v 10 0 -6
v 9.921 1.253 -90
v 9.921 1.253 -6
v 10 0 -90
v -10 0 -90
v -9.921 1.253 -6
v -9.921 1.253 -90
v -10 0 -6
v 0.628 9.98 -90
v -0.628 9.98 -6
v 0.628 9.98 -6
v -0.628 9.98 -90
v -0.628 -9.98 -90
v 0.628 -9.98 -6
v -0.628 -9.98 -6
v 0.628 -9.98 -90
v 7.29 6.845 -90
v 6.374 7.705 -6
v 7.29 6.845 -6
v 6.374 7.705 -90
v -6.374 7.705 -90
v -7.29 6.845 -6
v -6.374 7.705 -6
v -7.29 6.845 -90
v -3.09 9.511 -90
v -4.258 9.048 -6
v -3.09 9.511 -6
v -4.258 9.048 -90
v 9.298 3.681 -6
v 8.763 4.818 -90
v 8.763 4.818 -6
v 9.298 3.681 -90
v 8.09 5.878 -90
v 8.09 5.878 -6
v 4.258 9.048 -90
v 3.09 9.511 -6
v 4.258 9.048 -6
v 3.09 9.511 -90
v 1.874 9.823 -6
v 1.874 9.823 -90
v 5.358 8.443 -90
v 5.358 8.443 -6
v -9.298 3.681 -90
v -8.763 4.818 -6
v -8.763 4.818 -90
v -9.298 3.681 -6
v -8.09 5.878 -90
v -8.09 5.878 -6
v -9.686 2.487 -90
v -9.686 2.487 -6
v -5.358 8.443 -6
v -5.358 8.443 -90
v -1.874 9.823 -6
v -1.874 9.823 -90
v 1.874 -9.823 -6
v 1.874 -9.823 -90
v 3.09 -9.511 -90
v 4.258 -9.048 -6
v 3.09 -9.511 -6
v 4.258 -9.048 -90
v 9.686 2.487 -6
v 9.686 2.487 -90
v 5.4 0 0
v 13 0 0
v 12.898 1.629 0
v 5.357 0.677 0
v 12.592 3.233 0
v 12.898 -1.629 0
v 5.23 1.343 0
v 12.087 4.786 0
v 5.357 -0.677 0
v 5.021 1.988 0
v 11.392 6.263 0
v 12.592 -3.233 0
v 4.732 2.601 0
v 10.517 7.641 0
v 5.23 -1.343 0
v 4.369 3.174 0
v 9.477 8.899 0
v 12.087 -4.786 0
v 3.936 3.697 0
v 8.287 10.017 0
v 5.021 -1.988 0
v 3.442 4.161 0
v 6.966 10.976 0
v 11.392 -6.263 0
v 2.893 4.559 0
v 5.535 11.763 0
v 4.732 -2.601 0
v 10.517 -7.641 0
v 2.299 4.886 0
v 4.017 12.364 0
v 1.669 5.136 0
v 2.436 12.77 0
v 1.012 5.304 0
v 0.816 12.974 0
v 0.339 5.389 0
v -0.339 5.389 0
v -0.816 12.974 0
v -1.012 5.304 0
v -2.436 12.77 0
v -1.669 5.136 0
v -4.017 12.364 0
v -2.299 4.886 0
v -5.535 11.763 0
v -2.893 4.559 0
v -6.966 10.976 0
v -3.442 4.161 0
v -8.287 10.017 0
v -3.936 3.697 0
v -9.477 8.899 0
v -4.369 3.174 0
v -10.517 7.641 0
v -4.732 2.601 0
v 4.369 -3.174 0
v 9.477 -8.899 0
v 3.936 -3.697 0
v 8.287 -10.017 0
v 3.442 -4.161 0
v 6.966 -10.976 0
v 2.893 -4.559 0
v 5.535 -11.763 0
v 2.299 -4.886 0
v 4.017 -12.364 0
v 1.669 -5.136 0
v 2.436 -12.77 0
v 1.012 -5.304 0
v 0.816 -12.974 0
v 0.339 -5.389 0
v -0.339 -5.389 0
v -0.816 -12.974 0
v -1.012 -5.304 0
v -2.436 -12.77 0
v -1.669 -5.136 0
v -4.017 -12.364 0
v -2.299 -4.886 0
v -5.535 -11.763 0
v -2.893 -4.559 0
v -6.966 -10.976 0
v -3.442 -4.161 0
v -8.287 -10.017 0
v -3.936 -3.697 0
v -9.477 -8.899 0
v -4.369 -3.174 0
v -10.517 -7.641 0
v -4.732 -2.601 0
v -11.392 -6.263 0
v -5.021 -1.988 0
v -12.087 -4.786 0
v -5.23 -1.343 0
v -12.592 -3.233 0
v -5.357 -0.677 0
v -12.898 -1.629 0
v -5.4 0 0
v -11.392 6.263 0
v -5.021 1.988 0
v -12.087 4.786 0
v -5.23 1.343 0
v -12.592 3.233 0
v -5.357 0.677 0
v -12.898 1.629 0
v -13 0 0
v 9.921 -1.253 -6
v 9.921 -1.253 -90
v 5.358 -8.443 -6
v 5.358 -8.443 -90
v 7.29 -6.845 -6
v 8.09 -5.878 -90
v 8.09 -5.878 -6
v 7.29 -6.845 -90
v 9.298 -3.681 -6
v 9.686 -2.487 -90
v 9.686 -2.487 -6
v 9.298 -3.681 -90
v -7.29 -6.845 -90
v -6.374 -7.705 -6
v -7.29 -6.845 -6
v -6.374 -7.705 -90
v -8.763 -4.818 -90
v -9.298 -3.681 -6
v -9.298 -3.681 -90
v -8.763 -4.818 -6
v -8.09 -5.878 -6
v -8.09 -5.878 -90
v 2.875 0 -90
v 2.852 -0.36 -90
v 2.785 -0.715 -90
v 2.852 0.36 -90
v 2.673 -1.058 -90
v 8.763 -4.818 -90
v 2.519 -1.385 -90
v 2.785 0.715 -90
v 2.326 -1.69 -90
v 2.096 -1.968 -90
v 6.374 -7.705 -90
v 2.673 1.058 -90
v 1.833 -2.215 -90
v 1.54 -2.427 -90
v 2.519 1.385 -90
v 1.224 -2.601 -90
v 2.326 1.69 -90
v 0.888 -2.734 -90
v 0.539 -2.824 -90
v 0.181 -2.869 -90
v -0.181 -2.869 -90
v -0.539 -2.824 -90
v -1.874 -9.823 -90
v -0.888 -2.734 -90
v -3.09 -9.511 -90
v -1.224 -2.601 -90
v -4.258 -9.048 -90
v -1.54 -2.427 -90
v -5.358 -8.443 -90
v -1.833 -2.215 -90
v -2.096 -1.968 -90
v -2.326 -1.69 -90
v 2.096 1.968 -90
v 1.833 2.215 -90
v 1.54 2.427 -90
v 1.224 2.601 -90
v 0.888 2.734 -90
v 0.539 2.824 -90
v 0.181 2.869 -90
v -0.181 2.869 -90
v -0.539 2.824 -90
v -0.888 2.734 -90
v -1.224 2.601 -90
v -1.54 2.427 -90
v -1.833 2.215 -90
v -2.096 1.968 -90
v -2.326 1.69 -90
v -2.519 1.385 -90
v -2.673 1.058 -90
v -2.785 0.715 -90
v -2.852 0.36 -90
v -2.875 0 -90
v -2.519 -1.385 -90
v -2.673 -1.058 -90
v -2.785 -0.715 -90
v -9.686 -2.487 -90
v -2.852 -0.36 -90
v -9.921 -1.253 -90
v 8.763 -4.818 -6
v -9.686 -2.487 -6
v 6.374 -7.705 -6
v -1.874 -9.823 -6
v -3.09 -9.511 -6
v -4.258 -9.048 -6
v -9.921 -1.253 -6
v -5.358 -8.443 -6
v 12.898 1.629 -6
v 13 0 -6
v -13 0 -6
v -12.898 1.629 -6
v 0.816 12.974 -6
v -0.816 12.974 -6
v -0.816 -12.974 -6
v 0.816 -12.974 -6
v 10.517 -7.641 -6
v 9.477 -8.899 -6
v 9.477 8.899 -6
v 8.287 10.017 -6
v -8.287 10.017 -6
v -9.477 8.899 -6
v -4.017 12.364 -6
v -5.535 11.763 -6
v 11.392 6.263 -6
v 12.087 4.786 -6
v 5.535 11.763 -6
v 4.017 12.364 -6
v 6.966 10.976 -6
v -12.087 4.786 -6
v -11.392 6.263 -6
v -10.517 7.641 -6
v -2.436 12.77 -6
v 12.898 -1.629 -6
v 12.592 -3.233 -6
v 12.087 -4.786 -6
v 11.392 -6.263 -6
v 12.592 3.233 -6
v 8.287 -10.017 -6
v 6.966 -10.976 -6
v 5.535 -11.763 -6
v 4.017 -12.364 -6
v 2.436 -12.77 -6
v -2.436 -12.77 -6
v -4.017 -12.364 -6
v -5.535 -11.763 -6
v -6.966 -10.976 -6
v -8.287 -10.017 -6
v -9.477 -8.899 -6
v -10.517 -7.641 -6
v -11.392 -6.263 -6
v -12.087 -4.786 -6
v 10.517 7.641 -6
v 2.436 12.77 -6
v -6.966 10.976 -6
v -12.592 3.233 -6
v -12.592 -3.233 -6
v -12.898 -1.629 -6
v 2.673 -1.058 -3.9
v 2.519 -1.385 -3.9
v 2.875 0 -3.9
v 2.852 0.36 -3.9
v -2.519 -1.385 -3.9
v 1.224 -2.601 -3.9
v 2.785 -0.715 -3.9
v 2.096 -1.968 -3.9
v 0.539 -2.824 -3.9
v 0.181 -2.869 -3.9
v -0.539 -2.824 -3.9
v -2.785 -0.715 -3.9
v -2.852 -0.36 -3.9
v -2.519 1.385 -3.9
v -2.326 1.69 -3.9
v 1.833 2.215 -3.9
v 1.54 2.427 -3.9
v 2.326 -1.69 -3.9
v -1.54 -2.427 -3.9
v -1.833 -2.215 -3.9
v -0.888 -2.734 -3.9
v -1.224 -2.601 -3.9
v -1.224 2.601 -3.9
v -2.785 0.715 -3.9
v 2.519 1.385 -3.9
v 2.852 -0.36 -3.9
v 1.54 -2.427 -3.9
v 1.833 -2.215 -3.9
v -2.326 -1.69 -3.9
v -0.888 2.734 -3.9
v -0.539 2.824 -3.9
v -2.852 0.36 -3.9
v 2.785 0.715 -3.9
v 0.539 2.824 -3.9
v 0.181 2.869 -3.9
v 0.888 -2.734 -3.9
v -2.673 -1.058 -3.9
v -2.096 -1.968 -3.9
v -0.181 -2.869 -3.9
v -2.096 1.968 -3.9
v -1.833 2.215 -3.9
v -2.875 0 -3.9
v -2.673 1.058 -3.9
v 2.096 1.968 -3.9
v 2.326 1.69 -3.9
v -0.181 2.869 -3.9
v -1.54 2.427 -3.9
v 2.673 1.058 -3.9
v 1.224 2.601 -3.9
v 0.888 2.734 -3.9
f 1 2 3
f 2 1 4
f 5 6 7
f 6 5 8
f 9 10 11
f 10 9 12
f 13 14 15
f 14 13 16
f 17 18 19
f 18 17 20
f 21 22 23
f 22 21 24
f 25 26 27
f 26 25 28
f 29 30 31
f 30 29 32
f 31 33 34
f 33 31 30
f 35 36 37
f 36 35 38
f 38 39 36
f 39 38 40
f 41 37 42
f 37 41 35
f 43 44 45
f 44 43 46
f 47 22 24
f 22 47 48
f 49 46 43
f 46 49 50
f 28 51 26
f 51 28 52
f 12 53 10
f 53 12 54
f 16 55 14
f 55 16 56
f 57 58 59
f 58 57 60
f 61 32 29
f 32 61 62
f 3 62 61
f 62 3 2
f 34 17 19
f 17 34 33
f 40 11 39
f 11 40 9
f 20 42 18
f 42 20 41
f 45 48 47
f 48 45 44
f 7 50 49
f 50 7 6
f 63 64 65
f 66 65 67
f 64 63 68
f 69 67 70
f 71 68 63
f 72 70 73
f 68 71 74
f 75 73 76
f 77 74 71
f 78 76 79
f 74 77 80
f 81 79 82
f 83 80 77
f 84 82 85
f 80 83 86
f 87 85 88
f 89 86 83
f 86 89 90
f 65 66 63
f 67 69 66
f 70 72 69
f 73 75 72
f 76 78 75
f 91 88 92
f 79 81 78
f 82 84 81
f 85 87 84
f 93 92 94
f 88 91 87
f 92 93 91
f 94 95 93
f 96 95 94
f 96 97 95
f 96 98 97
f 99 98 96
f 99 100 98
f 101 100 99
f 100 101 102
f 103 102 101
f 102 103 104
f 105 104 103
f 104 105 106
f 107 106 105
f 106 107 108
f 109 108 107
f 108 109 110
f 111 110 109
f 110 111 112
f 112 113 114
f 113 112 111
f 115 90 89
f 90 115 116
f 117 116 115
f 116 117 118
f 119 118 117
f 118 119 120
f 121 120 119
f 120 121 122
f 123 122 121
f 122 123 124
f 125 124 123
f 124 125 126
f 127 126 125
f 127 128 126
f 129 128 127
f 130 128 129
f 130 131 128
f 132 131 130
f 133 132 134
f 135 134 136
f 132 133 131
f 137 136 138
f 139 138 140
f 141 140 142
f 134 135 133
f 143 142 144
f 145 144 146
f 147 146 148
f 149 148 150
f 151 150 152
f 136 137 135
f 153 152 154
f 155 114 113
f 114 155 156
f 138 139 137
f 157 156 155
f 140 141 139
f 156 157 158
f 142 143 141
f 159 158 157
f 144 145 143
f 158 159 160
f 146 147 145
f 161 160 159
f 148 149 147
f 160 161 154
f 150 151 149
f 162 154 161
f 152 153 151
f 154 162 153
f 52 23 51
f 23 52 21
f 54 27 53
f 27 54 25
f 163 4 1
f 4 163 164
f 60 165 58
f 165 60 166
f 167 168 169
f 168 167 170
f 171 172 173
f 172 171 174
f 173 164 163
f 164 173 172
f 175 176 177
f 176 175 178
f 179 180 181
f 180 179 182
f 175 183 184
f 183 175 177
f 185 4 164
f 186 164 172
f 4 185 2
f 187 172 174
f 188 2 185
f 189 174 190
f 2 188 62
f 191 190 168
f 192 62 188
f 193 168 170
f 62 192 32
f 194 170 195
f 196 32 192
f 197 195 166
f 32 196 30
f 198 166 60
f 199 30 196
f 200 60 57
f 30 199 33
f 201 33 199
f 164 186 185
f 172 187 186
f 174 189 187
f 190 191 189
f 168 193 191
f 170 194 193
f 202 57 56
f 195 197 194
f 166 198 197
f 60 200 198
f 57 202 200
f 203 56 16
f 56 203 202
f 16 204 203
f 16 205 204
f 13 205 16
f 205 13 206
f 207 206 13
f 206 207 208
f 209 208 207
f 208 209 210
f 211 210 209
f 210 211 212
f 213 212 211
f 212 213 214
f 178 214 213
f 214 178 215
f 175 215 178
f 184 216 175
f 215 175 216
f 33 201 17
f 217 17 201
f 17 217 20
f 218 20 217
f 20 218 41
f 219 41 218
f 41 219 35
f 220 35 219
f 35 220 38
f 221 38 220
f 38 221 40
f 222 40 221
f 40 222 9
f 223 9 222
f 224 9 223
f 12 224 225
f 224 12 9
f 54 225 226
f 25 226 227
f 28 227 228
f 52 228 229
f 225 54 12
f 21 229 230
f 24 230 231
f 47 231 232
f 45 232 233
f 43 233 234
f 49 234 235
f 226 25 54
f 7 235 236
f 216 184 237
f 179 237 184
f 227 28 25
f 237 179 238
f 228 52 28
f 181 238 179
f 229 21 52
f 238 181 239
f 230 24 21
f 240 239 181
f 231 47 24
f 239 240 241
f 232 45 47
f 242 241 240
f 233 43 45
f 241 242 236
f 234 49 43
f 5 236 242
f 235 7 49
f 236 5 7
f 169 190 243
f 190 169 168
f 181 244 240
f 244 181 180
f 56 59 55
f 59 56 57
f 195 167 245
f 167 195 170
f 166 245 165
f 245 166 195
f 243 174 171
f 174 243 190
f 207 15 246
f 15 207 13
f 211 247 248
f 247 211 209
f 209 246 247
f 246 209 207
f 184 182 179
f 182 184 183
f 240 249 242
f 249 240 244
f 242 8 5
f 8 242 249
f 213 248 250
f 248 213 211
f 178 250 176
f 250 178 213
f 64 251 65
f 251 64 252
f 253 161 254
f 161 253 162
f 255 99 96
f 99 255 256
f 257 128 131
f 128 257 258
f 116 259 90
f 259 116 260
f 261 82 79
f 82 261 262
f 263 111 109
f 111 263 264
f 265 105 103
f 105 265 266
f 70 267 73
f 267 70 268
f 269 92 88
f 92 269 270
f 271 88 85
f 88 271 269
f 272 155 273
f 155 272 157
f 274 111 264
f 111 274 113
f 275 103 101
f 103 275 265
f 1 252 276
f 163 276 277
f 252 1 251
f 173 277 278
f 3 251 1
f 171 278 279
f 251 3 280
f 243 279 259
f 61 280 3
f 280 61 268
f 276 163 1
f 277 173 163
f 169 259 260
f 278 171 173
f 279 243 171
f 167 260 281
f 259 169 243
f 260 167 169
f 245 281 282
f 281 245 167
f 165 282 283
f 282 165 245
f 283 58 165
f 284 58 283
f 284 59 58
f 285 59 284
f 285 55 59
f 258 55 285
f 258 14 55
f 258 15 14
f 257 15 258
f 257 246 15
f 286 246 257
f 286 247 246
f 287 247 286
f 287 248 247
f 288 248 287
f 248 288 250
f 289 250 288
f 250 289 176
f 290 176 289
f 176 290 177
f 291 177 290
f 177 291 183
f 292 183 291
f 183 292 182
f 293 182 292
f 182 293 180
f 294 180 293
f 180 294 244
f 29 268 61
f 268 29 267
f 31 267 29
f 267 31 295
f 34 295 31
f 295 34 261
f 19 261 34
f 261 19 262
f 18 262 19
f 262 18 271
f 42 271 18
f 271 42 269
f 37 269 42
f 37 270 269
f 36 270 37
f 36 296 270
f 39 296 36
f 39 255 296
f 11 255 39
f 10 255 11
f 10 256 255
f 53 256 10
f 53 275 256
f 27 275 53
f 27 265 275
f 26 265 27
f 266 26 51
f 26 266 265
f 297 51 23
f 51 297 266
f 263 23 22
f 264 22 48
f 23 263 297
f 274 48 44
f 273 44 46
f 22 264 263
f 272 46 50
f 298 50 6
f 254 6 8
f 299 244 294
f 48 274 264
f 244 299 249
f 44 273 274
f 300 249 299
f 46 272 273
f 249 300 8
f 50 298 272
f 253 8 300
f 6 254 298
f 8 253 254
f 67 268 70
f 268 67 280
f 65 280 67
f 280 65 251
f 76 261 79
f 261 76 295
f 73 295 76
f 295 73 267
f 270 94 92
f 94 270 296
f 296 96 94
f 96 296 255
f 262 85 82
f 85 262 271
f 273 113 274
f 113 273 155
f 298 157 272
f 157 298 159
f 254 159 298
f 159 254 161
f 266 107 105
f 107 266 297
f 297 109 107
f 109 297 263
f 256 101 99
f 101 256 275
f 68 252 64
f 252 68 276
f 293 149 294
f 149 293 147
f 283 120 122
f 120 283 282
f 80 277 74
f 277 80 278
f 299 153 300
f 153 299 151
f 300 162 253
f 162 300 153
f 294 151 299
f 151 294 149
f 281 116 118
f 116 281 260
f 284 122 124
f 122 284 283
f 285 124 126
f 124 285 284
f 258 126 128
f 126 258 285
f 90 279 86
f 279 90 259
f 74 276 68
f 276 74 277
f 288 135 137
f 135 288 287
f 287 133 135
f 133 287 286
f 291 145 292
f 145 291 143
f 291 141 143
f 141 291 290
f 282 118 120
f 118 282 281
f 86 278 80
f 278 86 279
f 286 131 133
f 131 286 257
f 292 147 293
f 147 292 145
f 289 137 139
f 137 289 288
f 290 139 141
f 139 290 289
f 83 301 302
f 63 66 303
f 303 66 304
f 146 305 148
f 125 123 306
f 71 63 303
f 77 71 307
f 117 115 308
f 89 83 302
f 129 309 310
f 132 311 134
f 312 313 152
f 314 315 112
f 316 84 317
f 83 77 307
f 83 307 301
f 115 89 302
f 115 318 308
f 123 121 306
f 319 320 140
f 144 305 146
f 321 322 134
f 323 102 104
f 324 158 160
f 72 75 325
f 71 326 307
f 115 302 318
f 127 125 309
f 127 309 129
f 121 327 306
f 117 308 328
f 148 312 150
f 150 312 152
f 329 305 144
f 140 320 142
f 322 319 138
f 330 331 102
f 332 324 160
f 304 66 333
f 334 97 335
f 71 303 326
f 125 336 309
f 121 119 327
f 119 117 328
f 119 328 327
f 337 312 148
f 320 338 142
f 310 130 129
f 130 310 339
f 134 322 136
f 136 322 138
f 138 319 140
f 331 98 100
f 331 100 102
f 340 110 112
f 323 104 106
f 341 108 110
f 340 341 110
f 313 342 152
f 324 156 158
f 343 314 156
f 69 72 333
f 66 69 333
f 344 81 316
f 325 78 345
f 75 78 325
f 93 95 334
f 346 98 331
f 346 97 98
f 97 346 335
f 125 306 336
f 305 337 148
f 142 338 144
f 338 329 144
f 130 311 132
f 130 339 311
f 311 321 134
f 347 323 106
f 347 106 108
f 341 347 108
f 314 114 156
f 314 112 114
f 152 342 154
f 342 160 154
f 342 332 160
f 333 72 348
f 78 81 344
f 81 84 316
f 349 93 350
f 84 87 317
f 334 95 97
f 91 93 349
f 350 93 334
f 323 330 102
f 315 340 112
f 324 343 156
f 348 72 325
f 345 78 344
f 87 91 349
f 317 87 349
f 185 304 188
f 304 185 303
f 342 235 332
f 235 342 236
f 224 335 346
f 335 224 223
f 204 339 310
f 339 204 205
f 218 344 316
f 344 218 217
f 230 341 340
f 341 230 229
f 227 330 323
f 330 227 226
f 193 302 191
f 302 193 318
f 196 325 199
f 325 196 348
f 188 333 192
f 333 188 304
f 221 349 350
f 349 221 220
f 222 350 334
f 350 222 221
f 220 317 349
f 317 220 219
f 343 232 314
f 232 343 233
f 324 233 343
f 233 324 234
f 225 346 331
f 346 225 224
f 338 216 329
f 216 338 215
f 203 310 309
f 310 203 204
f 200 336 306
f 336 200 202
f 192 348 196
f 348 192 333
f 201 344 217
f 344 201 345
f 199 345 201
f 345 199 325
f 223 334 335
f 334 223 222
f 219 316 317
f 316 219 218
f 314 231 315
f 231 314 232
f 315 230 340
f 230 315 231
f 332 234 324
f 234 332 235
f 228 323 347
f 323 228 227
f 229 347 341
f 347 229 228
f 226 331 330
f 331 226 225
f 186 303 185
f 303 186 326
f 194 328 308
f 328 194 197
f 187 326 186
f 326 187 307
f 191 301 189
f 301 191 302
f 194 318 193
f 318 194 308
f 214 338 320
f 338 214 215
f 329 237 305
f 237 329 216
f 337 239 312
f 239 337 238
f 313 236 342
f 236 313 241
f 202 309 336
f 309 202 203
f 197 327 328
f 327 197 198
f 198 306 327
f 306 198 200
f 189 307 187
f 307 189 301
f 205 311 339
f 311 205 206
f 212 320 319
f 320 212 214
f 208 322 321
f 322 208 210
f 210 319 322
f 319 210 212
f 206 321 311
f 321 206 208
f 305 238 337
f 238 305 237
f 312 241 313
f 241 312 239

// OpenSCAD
$fn = 50;


difference() {
	union() {
		translate(v = [0, 0, -90.0000000000]) {
			cylinder(h = 90, r = 10.0000000000);
		}
		translate(v = [0, 0, -6.0000000000]) {
			cylinder(h = 6, r = 13.0000000000);
		}
	}
	union() {
		translate(v = [0, 0, 0]) {
			rotate(a = [0, 0, 0]) {
				difference() {
					union() {
						#translate(v = [0, 0, -90.0000000000]) {
							cylinder(h = 90, r = 2.6000000000);
						}
						#translate(v = [0, 0, -3.9000000000]) {
							cylinder(h = 3.9000000000, r = 10.0000000000, r1 = 2.8750000000, r2 = 5.4000000000);
						}
						#translate(v = [0, 0, -90.0000000000]) {
							cylinder(h = 90, r = 2.8750000000);
						}
						#translate(v = [0, 0, -90.0000000000]) {
							cylinder(h = 90, r = 2.6000000000);
						}
					}
					union();
				}
			}
		}
	}
}
